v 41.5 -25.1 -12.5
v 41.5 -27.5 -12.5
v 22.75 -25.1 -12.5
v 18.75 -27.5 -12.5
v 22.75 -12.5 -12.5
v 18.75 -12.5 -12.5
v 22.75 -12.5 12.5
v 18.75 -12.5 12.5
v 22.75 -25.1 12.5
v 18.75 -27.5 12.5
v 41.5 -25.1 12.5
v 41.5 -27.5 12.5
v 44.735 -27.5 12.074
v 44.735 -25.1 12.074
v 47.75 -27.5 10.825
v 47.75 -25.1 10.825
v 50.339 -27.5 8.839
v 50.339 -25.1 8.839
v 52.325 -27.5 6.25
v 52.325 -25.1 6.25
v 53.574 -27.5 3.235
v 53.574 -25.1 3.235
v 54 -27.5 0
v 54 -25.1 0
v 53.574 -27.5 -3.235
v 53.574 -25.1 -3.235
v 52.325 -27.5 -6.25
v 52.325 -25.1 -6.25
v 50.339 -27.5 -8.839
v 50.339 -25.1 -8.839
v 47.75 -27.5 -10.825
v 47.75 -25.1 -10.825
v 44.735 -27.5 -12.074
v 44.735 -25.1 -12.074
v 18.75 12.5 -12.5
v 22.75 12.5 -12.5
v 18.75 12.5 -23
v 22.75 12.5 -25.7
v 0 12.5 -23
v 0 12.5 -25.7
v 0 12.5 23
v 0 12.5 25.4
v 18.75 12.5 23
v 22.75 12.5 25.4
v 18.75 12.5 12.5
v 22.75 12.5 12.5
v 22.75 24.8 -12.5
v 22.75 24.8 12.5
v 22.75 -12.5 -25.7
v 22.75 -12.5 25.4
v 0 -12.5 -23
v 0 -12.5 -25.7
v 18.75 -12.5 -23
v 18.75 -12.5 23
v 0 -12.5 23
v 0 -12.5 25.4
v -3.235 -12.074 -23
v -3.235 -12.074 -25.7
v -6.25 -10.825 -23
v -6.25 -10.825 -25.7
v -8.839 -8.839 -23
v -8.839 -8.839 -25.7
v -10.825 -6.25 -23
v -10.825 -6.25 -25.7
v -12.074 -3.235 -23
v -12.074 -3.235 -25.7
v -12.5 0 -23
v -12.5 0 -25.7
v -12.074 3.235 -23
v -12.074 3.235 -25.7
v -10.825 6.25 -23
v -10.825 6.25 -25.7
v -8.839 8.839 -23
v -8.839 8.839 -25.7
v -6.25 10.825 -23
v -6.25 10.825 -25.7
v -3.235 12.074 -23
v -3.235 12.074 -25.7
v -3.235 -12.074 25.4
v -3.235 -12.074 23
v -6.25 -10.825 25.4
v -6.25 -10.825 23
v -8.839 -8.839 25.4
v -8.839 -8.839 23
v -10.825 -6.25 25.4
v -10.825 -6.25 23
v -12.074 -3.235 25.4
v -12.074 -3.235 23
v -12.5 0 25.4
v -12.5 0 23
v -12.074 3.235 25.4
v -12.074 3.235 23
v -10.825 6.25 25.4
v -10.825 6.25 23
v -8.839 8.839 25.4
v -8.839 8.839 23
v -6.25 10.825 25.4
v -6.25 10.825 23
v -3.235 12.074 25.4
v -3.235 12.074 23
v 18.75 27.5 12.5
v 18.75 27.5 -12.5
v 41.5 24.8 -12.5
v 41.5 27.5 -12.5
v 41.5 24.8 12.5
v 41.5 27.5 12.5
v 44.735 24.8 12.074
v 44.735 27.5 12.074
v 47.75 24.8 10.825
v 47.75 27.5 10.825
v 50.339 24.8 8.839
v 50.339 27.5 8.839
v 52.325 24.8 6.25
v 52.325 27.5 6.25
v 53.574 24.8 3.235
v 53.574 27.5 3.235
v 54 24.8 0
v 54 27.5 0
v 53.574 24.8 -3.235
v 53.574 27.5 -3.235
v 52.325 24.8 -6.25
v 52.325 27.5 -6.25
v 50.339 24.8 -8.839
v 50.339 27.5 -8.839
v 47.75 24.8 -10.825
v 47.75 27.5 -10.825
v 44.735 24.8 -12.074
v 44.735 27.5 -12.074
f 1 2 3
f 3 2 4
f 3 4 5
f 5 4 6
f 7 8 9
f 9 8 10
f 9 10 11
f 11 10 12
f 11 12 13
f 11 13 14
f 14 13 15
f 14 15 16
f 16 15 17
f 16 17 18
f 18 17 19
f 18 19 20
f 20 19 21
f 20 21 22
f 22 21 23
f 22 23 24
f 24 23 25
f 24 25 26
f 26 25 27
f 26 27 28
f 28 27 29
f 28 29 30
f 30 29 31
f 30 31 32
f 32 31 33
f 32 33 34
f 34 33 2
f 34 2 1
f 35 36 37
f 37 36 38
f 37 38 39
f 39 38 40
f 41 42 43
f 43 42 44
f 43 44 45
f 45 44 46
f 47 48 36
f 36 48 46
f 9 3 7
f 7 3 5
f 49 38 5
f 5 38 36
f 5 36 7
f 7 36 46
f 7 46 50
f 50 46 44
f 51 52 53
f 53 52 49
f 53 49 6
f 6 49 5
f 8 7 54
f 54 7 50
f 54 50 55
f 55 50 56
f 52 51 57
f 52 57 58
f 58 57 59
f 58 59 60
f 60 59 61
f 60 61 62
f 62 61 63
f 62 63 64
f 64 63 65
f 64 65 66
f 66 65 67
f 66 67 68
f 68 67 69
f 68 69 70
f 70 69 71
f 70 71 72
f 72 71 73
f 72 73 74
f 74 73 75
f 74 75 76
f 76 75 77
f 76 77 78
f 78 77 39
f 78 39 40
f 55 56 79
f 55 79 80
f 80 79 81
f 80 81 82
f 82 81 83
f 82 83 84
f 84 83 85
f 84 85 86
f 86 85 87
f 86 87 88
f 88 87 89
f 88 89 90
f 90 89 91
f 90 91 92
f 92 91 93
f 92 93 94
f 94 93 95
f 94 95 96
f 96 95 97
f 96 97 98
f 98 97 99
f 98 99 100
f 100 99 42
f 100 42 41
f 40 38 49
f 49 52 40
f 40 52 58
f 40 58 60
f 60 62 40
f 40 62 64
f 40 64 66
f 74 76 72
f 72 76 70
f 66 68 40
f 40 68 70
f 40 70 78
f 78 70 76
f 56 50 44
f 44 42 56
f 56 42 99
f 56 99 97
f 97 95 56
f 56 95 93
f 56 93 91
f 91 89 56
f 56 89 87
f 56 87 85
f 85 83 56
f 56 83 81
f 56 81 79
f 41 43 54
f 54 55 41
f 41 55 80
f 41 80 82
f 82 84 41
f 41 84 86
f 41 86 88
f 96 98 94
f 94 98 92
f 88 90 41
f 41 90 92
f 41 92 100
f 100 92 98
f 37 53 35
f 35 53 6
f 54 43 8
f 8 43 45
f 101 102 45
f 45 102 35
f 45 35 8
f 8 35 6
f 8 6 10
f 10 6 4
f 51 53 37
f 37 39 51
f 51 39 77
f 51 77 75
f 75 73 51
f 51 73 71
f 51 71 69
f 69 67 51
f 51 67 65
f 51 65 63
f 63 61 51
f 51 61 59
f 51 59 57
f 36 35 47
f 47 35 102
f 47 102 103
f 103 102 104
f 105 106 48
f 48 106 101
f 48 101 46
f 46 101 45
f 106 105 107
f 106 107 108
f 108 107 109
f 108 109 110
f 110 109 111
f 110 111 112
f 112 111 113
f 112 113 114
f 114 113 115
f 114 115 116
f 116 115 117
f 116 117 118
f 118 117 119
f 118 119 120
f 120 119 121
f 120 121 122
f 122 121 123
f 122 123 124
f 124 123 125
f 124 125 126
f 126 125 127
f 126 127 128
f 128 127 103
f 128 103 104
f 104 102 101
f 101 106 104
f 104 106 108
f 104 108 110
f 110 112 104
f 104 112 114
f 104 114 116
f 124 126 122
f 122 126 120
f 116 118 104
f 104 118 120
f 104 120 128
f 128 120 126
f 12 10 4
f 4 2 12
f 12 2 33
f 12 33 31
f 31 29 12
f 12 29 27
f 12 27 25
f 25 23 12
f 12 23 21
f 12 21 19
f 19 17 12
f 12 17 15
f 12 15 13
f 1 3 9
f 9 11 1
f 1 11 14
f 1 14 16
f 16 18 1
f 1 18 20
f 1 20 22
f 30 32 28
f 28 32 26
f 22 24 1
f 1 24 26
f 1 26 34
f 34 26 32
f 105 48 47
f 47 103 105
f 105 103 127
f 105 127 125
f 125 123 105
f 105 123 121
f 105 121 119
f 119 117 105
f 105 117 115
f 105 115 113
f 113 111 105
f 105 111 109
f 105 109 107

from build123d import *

# Parameters (mm, degrees)
EXTRUDE_5_DEPTH          = 25.4
EXTRUDE_5_DEPTH_BACK     = 25.7
CUT_EXTRUDE_1_DEPTH      = 23
CUT_EXTRUDE_1_DEPTH_BACK = 23
EXTRUDE_6_DEPTH          = 27.5
CUT_EXTRUDE_2_DEPTH      = 24.8
CUT_EXTRUDE_2_DEPTH_BACK = 25.1


with BuildPart() as part:
    # Эскиз5 → Бобышка-Вытянуть5 (new body, two sides)
    with BuildSketch(Plane.XY) as extrude_5_sk:
        with BuildLine():
            Line((0, 12.5), (22.75, 12.5))
            Line((22.75, 12.5), (22.75, -12.5))
            Line((22.75, -12.5), (0, -12.5))
            ThreePointArc((0, -12.5), (-12.5, 0), (0, 12.5))
        make_face()
    extrude(amount=EXTRUDE_5_DEPTH)
    extrude(extrude_5_sk.sketch, amount=-EXTRUDE_5_DEPTH_BACK)

    # Эскиз6 → Вырез-Вытянуть1 (cut, two sides)
    with BuildSketch(Plane.XY) as cut_extrude_1_sk:
        with BuildLine():
            Line((0, 12.5), (18.75, 12.5))
            Line((18.75, 12.5), (18.75, -12.5))
            Line((18.75, -12.5), (0, -12.5))
            ThreePointArc((0, -12.5), (-12.5, 0), (0, 12.5))
        make_face()
    extrude(amount=CUT_EXTRUDE_1_DEPTH, mode=Mode.SUBTRACT)
    extrude(cut_extrude_1_sk.sketch, amount=-CUT_EXTRUDE_1_DEPTH_BACK, mode=Mode.SUBTRACT)

    # Эскиз7 → Бобышка-Вытянуть6 (add, symmetric)
    with BuildSketch(Plane(origin=(0, 0, 0), x_dir=(1, 0, 0), z_dir=(0, 1, 0))):
        with BuildLine():
            Line((41.5, 12.5), (18.75, 12.5))
            Line((18.75, 12.5), (18.75, -12.5))
            Line((18.75, -12.5), (41.5, -12.5))
            ThreePointArc((41.5, -12.5), (54, 0), (41.5, 12.5))
        make_face()
    extrude(amount=EXTRUDE_6_DEPTH, both=True)

    # Эскиз8 → Вырез-Вытянуть2 (cut, two sides)
    with BuildSketch(Plane(origin=(0, 0, 0), x_dir=(1, 0, 0), z_dir=(0, 1, 0))) as cut_extrude_2_sk:
        with BuildLine():
            Line((41.5, 12.5), (22.75, 12.5))
            Line((22.75, 12.5), (22.75, -12.5))
            Line((22.75, -12.5), (41.5, -12.5))
            ThreePointArc((41.5, -12.5), (54, 0), (41.5, 12.5))
        make_face()
    extrude(amount=CUT_EXTRUDE_2_DEPTH, mode=Mode.SUBTRACT)
    extrude(cut_extrude_2_sk.sketch, amount=-CUT_EXTRUDE_2_DEPTH_BACK, mode=Mode.SUBTRACT)


solid = part.part
